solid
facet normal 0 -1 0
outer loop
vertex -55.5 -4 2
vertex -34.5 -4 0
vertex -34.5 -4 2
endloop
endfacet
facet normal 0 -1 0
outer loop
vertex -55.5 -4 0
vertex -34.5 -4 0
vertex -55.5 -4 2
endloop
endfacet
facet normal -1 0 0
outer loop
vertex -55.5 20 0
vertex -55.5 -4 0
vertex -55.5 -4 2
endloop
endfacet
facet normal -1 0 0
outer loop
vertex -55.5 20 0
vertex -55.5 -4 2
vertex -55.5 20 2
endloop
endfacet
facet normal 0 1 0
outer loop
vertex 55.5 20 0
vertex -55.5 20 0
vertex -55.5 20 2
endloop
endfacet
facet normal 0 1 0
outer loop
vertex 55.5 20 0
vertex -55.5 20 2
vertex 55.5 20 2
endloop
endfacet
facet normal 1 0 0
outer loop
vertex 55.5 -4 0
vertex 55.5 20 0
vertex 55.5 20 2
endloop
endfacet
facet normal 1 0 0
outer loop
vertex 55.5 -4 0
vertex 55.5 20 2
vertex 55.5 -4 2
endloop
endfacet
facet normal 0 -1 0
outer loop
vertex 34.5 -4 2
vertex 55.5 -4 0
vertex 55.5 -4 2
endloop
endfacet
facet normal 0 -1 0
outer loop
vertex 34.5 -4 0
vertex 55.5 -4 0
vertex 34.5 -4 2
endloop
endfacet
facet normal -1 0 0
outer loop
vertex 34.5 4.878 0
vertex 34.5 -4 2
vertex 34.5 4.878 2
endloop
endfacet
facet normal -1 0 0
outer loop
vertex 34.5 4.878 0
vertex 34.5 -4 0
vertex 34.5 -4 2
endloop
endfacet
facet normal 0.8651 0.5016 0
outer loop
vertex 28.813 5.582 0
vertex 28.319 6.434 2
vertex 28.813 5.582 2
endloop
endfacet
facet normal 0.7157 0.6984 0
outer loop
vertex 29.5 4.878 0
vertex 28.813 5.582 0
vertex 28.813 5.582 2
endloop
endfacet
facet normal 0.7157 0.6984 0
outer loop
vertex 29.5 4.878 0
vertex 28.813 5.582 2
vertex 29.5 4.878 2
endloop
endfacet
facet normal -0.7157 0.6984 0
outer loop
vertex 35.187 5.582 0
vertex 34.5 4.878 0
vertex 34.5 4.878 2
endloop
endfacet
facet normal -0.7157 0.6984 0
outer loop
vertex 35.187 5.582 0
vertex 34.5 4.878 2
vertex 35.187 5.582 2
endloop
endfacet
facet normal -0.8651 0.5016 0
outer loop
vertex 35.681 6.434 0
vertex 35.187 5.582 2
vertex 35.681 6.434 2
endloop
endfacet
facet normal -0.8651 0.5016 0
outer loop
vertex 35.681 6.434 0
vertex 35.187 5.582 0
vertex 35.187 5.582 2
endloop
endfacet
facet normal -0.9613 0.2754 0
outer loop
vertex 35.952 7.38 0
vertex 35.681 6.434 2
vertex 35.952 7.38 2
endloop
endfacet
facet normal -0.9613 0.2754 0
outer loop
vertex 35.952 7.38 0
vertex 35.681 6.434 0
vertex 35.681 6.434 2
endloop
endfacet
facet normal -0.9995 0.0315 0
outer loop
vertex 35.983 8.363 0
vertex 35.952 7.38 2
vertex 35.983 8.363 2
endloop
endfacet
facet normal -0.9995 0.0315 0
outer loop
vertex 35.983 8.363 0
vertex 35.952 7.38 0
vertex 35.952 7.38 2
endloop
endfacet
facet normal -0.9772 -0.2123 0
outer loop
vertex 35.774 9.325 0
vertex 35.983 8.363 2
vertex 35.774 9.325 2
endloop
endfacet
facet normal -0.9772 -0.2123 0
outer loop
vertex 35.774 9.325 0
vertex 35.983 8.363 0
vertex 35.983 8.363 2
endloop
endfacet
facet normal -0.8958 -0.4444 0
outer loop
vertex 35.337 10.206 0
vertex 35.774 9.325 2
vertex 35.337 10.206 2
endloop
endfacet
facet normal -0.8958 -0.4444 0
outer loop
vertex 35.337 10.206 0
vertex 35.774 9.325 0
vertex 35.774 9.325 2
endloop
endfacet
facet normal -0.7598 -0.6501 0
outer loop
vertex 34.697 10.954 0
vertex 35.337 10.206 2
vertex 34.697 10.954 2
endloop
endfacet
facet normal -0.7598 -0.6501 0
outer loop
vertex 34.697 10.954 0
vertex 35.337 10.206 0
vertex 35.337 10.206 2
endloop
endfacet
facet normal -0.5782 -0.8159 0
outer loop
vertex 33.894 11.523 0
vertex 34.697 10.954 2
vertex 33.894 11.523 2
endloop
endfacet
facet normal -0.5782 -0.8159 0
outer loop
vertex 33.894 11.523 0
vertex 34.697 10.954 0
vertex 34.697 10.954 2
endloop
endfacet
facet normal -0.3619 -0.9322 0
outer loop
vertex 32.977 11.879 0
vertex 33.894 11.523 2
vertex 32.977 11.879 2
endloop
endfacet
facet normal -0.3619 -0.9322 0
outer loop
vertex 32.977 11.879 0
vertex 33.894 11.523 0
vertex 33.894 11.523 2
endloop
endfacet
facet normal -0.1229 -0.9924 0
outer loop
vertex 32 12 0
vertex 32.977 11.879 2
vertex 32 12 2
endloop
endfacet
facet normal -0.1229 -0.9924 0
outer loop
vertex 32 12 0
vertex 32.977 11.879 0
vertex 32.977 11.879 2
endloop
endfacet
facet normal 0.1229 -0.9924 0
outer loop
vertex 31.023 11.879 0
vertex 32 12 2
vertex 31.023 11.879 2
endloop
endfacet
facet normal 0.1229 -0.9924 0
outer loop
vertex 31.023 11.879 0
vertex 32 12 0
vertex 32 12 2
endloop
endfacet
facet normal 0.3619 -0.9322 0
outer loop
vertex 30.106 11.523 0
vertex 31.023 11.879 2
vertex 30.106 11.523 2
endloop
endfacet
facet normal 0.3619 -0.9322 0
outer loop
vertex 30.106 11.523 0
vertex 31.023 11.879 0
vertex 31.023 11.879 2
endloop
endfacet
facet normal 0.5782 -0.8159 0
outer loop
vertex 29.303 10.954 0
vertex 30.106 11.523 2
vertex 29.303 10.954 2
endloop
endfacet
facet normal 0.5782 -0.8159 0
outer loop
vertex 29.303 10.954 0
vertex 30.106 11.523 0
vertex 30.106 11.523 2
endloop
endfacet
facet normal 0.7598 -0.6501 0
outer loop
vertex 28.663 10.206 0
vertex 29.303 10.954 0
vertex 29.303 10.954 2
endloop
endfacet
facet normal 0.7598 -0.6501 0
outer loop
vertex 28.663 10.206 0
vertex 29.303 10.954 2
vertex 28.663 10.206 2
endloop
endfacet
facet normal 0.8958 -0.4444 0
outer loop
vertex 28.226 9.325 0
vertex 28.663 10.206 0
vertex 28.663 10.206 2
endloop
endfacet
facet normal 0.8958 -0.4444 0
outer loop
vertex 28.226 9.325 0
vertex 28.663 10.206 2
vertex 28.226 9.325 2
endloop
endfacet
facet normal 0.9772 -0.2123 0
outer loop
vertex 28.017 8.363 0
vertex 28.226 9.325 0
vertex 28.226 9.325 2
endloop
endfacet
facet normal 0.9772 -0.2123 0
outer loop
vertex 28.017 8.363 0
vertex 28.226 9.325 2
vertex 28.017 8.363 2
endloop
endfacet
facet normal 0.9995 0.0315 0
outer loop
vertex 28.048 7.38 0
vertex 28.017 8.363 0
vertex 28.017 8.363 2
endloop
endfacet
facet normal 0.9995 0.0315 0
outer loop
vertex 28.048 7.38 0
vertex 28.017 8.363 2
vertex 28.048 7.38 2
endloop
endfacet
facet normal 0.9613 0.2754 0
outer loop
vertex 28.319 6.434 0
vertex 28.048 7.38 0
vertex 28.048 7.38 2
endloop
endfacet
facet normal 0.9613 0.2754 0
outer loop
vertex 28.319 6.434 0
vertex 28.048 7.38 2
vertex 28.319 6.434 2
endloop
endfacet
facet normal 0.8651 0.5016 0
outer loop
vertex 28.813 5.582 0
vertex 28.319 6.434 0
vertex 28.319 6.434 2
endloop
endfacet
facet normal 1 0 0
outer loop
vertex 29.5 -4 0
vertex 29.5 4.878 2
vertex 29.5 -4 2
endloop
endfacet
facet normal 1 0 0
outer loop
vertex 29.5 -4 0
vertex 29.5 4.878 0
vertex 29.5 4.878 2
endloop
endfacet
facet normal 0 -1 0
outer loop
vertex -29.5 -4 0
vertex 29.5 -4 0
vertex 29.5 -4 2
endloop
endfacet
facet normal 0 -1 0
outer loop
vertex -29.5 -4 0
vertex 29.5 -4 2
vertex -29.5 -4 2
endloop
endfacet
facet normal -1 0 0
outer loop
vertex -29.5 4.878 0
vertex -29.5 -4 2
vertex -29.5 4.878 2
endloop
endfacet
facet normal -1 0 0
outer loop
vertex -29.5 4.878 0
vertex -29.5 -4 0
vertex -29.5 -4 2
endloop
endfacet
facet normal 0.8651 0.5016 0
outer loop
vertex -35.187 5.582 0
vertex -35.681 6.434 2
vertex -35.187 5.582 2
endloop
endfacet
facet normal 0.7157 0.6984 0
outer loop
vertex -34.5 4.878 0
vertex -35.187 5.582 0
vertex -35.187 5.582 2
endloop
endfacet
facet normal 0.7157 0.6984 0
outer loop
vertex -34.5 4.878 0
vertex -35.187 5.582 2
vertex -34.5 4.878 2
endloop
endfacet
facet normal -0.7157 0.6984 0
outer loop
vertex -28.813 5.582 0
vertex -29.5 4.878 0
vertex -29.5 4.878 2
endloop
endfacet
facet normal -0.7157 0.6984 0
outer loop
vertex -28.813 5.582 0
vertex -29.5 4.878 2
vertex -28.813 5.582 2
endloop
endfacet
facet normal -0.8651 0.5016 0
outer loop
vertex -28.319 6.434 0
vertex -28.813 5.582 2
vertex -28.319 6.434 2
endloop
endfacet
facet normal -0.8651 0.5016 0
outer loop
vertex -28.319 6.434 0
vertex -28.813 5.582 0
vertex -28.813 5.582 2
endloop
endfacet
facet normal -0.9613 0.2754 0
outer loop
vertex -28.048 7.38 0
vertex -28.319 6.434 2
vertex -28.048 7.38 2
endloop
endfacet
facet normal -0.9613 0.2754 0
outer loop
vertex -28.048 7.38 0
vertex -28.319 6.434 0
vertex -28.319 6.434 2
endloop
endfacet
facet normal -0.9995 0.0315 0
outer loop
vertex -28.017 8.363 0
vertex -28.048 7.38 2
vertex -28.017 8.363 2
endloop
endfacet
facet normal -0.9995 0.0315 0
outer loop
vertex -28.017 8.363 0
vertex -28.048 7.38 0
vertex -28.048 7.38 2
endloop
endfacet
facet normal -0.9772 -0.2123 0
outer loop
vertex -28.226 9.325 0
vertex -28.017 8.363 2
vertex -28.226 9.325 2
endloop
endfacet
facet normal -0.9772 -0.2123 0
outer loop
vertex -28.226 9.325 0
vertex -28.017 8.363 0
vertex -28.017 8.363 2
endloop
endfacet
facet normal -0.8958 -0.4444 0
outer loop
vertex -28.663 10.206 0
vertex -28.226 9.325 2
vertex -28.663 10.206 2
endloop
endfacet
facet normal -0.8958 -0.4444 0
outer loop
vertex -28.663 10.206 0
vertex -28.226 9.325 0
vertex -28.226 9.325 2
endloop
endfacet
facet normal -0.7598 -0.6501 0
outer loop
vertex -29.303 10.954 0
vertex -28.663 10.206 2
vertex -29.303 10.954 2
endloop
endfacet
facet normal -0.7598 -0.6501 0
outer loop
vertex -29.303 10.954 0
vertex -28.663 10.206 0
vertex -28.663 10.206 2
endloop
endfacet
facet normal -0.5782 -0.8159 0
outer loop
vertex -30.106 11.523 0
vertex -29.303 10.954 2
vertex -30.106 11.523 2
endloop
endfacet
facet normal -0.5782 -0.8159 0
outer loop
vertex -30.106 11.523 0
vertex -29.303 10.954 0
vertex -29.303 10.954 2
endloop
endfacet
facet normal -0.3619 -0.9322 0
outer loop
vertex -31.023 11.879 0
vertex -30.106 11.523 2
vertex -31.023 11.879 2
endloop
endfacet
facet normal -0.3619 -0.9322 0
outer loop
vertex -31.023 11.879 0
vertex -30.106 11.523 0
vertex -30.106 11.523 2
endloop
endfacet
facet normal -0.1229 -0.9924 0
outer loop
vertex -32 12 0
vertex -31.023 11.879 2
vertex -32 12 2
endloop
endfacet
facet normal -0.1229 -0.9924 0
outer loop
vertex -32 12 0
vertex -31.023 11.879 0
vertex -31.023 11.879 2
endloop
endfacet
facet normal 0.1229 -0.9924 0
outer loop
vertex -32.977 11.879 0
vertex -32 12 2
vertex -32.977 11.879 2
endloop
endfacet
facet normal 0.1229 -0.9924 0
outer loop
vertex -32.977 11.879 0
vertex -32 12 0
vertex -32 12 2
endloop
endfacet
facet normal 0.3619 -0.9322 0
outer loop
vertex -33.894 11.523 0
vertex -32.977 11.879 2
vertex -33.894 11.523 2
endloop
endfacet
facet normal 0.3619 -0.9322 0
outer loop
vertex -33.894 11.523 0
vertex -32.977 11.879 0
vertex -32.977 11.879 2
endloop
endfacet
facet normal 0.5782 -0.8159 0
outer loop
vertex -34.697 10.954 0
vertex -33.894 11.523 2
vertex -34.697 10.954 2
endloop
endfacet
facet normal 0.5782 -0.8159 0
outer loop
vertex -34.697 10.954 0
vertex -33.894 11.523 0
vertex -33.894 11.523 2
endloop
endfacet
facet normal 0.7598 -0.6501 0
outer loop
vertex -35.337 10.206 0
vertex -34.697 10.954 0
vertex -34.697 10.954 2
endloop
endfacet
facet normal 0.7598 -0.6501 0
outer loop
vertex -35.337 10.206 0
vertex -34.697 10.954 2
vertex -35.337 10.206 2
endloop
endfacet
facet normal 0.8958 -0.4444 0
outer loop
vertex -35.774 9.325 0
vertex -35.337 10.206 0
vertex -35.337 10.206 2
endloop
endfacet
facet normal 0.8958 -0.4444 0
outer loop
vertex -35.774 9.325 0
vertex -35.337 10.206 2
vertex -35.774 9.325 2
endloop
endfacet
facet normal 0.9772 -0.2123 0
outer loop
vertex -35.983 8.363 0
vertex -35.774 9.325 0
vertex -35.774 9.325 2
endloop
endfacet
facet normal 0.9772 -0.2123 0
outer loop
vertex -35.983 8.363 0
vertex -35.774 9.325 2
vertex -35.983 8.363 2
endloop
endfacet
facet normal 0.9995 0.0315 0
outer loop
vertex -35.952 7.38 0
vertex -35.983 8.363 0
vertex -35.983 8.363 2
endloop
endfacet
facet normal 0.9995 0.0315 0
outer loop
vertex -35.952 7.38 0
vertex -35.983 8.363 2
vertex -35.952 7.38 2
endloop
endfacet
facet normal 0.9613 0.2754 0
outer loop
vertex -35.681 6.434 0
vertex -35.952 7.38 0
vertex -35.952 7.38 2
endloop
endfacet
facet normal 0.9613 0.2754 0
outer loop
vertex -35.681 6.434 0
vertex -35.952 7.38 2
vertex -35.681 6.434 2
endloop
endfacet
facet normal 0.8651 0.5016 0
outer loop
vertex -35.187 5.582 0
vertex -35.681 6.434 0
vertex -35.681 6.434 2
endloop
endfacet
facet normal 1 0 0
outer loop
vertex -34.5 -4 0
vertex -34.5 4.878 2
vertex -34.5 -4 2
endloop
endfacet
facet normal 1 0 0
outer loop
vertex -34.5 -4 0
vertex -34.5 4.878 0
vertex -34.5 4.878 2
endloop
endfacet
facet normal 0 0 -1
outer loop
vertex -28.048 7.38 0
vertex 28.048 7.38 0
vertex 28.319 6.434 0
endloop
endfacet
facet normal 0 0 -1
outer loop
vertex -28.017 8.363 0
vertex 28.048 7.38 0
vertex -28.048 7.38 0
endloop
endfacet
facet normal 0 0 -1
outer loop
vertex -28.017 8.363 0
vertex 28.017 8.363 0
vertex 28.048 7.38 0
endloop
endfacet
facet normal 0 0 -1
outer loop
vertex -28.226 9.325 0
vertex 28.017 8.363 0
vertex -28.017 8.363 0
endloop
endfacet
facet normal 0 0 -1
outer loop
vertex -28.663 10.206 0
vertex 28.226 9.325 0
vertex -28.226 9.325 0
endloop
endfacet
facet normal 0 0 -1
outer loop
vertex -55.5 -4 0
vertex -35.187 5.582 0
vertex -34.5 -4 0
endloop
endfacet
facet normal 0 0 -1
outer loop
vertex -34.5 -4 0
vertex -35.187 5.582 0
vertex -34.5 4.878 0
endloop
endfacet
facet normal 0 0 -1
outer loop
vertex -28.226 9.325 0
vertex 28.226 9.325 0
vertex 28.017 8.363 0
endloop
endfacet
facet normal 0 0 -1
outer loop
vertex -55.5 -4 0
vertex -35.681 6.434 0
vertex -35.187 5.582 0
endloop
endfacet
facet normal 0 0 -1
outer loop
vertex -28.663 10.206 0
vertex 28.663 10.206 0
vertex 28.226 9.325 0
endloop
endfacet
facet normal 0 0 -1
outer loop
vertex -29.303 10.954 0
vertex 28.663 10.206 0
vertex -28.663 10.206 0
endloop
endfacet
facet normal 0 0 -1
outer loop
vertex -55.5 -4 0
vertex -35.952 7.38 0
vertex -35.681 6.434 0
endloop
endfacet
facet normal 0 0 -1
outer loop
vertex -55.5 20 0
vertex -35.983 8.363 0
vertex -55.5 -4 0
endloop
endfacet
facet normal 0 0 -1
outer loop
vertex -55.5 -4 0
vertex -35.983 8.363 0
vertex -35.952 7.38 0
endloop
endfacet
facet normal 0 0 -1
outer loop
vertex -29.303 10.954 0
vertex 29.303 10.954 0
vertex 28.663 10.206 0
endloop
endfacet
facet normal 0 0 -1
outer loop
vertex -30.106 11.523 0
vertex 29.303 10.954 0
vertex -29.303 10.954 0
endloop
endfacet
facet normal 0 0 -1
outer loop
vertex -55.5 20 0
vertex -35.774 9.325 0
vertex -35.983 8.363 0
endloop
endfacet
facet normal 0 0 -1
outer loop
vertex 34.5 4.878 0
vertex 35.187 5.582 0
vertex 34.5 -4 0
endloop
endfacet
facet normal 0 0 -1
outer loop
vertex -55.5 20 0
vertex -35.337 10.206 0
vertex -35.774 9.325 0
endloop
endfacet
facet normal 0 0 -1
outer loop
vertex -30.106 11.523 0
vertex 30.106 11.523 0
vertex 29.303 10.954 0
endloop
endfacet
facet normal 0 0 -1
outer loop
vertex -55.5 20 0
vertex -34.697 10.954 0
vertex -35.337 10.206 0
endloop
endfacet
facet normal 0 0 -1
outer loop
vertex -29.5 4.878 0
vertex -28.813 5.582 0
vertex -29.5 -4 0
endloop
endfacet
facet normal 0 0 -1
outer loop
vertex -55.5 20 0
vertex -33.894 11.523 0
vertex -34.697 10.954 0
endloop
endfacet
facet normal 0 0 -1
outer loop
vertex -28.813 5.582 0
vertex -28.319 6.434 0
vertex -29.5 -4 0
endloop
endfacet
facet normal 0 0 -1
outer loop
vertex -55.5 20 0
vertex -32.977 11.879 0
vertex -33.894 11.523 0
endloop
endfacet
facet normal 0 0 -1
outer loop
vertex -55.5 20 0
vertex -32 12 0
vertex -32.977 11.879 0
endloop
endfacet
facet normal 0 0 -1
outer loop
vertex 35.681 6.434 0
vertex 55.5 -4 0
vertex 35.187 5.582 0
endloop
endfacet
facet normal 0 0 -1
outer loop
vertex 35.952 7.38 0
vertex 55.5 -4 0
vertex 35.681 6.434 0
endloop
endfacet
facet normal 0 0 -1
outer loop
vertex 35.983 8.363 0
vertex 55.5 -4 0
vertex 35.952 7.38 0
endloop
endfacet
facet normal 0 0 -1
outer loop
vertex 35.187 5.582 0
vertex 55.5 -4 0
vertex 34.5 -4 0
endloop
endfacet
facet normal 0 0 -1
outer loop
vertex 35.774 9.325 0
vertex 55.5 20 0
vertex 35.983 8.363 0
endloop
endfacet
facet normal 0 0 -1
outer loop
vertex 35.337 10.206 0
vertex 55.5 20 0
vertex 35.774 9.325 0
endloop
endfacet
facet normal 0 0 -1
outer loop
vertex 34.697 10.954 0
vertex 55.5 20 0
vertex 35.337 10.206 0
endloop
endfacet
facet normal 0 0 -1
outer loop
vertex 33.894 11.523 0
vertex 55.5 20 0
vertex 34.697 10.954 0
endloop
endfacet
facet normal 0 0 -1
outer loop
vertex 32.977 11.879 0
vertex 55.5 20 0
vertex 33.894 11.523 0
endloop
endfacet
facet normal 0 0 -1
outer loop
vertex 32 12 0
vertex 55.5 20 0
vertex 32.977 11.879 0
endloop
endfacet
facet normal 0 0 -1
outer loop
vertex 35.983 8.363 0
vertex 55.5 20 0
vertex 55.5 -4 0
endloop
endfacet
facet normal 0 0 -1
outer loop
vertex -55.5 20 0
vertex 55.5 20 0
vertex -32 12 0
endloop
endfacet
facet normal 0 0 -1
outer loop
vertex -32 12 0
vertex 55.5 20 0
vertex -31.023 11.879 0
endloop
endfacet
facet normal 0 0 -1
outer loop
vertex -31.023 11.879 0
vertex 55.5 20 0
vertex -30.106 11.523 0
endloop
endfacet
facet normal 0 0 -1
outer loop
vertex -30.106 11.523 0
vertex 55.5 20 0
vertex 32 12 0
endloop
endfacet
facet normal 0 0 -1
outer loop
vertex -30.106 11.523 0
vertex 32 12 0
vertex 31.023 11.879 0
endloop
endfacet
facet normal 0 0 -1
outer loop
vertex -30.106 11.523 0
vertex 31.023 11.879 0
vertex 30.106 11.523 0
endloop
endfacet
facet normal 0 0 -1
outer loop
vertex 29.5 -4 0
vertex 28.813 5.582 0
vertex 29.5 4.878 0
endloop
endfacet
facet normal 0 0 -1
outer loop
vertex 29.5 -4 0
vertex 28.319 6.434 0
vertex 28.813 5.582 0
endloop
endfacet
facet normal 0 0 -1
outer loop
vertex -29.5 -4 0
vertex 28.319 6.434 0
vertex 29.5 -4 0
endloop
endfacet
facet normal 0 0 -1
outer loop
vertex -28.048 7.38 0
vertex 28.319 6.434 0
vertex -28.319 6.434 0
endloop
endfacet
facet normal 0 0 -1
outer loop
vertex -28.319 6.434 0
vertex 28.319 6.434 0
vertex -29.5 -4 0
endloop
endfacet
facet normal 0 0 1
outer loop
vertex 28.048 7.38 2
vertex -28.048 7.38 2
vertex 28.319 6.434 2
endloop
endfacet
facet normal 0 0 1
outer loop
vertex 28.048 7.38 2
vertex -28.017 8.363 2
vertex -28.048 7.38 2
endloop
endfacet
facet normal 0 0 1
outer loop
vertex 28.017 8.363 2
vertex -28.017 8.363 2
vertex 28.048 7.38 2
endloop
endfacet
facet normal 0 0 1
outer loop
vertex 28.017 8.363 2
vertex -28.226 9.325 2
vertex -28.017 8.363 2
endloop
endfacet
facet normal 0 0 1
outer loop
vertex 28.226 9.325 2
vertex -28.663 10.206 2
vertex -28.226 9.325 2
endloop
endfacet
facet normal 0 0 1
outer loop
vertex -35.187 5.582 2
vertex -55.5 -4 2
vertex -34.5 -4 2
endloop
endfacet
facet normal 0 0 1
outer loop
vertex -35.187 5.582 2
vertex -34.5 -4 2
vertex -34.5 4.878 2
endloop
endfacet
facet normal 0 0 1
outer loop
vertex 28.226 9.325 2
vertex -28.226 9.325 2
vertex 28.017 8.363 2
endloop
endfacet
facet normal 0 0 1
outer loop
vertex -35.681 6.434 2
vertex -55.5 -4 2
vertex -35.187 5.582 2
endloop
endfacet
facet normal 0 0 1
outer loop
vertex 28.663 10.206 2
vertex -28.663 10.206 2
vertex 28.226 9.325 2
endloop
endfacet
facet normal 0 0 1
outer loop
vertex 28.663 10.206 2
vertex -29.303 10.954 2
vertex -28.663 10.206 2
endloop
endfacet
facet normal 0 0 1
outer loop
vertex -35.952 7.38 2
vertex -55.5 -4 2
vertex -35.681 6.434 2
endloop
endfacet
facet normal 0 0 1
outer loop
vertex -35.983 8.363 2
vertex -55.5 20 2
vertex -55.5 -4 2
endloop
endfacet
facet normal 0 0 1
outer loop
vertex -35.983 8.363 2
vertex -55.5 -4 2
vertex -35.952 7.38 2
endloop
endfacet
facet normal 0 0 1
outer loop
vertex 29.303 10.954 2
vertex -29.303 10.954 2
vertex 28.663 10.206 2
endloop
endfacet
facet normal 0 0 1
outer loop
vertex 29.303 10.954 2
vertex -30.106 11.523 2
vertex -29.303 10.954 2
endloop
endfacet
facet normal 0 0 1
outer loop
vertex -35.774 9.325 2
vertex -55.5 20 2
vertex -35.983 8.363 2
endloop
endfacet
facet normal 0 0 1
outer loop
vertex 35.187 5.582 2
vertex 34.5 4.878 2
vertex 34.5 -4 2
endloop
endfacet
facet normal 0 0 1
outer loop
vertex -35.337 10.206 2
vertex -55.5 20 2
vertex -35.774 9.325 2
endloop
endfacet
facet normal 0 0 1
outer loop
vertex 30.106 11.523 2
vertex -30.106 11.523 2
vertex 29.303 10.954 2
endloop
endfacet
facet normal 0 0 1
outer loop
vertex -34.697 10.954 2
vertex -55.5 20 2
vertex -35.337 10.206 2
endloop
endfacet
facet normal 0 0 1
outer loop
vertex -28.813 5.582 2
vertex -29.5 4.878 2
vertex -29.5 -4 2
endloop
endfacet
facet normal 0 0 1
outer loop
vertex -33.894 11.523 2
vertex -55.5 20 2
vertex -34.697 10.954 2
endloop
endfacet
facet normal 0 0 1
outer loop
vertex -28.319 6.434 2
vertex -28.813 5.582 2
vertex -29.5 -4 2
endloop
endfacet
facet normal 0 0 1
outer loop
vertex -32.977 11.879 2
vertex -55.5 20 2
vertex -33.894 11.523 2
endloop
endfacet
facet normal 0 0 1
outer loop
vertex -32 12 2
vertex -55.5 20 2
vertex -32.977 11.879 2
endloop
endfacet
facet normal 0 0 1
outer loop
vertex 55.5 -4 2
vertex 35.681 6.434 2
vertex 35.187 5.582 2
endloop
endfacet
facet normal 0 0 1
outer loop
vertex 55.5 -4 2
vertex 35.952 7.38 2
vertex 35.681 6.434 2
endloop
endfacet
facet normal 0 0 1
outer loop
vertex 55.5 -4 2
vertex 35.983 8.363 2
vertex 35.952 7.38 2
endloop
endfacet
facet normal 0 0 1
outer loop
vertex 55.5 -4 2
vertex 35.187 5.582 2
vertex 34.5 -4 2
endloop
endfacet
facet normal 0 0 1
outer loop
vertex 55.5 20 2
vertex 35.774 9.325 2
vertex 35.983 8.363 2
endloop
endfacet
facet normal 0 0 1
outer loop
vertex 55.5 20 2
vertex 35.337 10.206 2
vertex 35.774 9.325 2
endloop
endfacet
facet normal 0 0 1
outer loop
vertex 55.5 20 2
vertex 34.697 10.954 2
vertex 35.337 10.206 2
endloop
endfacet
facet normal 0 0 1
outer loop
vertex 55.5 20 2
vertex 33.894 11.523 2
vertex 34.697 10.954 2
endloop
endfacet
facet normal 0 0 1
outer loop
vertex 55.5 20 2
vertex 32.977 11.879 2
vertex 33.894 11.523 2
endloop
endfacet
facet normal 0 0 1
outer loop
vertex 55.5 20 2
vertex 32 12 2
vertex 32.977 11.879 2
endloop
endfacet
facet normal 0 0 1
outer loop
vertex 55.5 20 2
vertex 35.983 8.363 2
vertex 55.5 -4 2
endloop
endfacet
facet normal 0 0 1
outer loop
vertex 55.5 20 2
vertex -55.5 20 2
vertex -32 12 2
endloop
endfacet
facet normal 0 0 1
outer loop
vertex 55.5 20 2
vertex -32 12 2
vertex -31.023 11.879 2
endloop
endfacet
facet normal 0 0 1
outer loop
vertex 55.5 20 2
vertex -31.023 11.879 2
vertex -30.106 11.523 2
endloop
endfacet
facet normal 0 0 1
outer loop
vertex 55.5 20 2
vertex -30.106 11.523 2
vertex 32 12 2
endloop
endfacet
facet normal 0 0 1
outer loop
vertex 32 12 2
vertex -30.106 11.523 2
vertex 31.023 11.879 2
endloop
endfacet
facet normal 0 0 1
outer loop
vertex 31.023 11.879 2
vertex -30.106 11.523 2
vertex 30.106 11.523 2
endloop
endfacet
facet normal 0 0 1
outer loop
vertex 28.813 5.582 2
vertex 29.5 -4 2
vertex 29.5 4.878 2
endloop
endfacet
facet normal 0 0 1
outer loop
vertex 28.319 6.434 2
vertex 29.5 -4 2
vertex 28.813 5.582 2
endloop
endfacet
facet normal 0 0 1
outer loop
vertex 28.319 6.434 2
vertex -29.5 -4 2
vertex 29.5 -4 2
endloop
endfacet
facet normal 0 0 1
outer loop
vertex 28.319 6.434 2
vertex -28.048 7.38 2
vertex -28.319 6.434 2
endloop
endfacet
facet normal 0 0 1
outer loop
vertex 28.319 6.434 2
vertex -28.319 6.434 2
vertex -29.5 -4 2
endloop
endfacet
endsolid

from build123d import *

# Parameters (mm, degrees)
PAD_DEPTH = 2


with BuildPart() as part:
    # Sketch → Pad (new body)
    with BuildSketch(Plane.XY):
        with BuildLine():
            Line((-55.5, 20), (55.5, 20))
            Line((55.5, 20), (55.5, -4))
            Line((55.5, -4), (34.5, -4))
            Line((34.5, 4.877501), (34.5, -4))
            ThreePointArc((34.5, 4.877501), (32, 12), (29.5, 4.877501))
            Line((29.5, -4), (29.5, 4.877501))
            Line((29.5, -4), (-29.5, -4))
            Line((-29.5, 4.877501), (-29.5, -4))
            ThreePointArc((-29.5, 4.877501), (-32, 12), (-34.5, 4.877501))
            Line((-34.5, -4), (-34.5, 4.877501))
            Line((-34.5, -4), (-55.5, -4))
            Line((-55.5, -4), (-55.5, 20))
        make_face()
    extrude(amount=PAD_DEPTH)


solid = part.part
